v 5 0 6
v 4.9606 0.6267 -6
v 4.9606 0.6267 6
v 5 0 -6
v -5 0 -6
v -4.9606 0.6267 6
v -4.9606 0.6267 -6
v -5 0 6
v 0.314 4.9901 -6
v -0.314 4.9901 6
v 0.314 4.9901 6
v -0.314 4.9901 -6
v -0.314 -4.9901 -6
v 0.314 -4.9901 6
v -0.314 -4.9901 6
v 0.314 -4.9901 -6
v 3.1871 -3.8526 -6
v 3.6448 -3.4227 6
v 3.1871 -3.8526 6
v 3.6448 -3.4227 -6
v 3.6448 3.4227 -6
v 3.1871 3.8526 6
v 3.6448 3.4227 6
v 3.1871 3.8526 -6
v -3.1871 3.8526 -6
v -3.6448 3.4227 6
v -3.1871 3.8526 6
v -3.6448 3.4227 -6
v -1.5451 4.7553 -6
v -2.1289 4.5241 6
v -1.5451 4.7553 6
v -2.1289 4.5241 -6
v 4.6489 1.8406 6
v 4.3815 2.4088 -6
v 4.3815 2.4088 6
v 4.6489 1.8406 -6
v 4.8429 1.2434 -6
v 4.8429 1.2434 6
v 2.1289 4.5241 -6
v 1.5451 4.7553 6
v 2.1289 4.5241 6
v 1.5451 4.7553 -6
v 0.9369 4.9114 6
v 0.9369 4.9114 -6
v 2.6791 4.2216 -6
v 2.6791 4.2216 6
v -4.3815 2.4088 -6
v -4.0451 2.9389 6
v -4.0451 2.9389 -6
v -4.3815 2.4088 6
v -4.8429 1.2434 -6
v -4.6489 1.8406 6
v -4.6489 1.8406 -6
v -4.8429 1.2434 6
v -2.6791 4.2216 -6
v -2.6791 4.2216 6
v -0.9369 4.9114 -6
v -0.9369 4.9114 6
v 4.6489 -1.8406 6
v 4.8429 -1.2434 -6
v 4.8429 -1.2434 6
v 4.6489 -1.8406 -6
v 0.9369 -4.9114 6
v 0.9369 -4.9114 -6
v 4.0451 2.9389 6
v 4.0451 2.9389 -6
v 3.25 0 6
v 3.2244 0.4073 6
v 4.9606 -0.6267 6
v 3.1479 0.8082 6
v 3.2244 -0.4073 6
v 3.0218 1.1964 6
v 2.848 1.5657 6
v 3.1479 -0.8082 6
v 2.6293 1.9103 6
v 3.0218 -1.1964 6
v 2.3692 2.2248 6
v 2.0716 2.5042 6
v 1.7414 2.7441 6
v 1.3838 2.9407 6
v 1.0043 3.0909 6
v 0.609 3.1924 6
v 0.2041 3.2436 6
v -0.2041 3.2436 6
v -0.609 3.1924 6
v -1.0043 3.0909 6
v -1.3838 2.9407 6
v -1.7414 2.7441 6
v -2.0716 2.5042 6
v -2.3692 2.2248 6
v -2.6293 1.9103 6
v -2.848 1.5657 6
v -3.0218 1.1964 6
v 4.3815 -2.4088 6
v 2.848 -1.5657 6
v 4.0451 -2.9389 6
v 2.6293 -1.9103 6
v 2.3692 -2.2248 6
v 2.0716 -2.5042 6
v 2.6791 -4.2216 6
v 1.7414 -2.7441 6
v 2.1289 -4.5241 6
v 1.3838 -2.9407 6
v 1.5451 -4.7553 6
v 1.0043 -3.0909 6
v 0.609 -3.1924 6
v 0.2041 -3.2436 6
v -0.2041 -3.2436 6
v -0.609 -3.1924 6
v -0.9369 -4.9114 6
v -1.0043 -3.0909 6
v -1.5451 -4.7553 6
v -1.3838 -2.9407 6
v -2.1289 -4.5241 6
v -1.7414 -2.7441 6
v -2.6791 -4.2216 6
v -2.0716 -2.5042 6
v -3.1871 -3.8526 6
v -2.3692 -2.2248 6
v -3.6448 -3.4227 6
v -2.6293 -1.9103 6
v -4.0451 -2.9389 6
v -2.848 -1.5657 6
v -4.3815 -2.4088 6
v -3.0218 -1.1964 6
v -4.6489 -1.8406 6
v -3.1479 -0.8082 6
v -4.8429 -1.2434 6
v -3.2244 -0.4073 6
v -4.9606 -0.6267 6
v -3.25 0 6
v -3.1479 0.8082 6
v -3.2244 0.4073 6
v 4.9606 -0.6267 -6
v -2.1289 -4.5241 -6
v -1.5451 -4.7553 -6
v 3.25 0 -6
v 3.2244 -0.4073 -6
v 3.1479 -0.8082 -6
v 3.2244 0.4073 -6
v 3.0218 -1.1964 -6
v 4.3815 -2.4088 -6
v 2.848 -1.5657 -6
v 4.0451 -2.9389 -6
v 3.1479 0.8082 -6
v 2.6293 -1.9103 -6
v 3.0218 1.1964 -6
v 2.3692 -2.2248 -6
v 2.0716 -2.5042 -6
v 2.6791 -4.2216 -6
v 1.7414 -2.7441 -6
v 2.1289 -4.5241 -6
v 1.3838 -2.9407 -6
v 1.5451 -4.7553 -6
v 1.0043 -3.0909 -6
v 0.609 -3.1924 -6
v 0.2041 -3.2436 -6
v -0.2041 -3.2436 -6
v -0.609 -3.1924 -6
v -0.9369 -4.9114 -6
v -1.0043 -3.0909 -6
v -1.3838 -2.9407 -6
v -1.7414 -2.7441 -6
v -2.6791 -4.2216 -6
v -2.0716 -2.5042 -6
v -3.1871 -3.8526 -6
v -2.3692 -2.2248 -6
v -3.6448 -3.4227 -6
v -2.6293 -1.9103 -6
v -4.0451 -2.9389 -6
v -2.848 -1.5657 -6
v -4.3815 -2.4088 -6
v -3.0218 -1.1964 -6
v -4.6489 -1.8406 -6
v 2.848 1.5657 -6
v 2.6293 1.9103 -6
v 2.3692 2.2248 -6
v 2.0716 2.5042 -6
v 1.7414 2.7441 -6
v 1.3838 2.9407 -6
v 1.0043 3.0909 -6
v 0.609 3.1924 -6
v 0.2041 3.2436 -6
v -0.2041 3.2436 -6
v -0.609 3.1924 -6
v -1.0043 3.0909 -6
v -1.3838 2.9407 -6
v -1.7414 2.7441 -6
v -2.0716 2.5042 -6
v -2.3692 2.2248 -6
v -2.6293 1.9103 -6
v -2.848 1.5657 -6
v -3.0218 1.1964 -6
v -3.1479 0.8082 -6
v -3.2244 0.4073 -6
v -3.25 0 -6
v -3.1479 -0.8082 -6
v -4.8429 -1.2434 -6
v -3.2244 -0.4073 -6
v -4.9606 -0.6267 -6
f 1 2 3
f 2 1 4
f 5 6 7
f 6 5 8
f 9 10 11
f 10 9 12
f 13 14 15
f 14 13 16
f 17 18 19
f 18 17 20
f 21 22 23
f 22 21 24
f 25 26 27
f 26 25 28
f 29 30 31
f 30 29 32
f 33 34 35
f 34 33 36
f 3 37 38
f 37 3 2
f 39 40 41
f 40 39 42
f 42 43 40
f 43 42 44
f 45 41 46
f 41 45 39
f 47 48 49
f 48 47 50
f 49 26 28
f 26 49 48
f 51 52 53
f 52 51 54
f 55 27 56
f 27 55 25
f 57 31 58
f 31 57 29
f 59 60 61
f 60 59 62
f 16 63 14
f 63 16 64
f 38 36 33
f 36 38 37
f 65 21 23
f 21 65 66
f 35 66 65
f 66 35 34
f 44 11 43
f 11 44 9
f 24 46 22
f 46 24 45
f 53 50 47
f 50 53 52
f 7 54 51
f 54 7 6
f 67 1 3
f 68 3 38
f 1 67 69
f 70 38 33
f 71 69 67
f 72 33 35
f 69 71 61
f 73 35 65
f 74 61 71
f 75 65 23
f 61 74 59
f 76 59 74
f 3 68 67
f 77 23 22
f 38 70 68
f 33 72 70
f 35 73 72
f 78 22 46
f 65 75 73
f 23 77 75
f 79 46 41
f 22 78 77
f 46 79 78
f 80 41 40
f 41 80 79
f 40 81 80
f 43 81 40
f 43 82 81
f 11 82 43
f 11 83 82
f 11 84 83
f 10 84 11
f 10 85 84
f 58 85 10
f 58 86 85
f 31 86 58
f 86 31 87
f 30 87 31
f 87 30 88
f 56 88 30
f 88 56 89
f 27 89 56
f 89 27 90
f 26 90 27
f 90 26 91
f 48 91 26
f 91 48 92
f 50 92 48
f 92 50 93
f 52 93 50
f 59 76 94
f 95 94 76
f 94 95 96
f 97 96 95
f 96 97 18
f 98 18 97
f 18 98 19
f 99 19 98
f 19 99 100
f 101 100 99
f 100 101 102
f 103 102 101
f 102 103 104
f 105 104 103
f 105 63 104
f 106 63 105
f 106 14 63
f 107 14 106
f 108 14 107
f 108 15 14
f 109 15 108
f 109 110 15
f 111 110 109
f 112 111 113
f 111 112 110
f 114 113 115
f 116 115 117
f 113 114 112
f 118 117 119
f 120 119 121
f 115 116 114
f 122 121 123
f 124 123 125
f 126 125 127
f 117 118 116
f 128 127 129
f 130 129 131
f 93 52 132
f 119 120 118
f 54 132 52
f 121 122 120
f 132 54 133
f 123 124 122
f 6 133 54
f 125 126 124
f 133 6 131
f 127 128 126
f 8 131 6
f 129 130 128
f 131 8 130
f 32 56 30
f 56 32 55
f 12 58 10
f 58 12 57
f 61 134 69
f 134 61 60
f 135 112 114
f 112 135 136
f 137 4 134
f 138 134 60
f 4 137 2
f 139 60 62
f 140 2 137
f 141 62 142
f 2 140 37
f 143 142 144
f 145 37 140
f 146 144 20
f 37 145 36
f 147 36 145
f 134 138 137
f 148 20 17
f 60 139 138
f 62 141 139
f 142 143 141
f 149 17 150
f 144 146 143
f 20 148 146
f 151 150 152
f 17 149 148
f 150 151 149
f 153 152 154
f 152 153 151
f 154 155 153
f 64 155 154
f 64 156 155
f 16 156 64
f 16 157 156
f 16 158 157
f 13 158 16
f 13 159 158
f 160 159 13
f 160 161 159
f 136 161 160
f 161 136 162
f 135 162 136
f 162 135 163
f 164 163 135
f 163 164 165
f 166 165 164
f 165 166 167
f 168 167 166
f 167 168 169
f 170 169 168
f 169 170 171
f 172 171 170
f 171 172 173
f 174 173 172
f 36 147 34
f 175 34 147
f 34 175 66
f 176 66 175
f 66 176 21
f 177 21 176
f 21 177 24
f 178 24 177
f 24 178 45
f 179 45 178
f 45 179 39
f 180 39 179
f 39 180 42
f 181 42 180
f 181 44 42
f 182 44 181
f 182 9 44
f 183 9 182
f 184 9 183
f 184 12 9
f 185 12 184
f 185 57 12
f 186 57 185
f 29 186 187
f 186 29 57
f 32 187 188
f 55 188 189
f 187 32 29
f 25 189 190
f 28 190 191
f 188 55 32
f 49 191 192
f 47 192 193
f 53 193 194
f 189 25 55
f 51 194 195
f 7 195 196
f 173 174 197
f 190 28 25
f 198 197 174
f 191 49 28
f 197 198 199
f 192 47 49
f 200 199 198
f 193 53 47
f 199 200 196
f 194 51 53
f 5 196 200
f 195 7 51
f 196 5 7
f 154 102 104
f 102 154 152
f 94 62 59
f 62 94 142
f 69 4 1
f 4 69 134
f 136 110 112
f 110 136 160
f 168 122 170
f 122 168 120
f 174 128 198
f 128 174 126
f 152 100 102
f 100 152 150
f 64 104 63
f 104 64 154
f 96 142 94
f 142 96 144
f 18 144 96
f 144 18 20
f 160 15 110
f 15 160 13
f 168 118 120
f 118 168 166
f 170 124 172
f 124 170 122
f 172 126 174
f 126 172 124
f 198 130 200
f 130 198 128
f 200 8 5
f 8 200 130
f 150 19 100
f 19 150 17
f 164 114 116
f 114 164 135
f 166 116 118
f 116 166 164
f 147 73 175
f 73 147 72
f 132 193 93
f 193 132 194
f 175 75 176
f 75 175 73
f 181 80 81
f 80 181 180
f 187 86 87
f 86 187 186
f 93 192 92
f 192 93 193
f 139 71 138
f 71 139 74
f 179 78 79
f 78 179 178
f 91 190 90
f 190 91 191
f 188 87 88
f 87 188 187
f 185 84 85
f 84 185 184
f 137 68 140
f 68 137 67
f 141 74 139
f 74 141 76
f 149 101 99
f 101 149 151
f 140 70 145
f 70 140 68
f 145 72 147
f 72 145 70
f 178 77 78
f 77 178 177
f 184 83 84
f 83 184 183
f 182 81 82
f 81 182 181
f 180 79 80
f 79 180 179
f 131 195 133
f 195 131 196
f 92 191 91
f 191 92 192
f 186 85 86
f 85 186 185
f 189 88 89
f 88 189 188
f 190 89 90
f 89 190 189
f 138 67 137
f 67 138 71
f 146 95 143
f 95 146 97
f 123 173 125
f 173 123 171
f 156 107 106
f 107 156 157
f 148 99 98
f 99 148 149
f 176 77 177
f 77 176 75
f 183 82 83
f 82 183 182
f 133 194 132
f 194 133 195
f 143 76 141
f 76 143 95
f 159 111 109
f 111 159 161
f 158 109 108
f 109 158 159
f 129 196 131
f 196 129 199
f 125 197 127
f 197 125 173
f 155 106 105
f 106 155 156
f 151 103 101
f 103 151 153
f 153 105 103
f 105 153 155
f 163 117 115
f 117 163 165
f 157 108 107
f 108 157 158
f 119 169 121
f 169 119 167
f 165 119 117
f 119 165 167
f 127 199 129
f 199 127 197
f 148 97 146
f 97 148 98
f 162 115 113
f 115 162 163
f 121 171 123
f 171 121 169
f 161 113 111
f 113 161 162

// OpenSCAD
$fn = 50;


difference() {
	union() {
		translate(v = [0, 0, -6.0000000000]) {
			cylinder(h = 12, r = 5.0000000000);
		}
	}
	union() {
		translate(v = [0, 0, -100.0000000000]) {
			cylinder(h = 200, r = 3.2500000000);
		}
	}
}
